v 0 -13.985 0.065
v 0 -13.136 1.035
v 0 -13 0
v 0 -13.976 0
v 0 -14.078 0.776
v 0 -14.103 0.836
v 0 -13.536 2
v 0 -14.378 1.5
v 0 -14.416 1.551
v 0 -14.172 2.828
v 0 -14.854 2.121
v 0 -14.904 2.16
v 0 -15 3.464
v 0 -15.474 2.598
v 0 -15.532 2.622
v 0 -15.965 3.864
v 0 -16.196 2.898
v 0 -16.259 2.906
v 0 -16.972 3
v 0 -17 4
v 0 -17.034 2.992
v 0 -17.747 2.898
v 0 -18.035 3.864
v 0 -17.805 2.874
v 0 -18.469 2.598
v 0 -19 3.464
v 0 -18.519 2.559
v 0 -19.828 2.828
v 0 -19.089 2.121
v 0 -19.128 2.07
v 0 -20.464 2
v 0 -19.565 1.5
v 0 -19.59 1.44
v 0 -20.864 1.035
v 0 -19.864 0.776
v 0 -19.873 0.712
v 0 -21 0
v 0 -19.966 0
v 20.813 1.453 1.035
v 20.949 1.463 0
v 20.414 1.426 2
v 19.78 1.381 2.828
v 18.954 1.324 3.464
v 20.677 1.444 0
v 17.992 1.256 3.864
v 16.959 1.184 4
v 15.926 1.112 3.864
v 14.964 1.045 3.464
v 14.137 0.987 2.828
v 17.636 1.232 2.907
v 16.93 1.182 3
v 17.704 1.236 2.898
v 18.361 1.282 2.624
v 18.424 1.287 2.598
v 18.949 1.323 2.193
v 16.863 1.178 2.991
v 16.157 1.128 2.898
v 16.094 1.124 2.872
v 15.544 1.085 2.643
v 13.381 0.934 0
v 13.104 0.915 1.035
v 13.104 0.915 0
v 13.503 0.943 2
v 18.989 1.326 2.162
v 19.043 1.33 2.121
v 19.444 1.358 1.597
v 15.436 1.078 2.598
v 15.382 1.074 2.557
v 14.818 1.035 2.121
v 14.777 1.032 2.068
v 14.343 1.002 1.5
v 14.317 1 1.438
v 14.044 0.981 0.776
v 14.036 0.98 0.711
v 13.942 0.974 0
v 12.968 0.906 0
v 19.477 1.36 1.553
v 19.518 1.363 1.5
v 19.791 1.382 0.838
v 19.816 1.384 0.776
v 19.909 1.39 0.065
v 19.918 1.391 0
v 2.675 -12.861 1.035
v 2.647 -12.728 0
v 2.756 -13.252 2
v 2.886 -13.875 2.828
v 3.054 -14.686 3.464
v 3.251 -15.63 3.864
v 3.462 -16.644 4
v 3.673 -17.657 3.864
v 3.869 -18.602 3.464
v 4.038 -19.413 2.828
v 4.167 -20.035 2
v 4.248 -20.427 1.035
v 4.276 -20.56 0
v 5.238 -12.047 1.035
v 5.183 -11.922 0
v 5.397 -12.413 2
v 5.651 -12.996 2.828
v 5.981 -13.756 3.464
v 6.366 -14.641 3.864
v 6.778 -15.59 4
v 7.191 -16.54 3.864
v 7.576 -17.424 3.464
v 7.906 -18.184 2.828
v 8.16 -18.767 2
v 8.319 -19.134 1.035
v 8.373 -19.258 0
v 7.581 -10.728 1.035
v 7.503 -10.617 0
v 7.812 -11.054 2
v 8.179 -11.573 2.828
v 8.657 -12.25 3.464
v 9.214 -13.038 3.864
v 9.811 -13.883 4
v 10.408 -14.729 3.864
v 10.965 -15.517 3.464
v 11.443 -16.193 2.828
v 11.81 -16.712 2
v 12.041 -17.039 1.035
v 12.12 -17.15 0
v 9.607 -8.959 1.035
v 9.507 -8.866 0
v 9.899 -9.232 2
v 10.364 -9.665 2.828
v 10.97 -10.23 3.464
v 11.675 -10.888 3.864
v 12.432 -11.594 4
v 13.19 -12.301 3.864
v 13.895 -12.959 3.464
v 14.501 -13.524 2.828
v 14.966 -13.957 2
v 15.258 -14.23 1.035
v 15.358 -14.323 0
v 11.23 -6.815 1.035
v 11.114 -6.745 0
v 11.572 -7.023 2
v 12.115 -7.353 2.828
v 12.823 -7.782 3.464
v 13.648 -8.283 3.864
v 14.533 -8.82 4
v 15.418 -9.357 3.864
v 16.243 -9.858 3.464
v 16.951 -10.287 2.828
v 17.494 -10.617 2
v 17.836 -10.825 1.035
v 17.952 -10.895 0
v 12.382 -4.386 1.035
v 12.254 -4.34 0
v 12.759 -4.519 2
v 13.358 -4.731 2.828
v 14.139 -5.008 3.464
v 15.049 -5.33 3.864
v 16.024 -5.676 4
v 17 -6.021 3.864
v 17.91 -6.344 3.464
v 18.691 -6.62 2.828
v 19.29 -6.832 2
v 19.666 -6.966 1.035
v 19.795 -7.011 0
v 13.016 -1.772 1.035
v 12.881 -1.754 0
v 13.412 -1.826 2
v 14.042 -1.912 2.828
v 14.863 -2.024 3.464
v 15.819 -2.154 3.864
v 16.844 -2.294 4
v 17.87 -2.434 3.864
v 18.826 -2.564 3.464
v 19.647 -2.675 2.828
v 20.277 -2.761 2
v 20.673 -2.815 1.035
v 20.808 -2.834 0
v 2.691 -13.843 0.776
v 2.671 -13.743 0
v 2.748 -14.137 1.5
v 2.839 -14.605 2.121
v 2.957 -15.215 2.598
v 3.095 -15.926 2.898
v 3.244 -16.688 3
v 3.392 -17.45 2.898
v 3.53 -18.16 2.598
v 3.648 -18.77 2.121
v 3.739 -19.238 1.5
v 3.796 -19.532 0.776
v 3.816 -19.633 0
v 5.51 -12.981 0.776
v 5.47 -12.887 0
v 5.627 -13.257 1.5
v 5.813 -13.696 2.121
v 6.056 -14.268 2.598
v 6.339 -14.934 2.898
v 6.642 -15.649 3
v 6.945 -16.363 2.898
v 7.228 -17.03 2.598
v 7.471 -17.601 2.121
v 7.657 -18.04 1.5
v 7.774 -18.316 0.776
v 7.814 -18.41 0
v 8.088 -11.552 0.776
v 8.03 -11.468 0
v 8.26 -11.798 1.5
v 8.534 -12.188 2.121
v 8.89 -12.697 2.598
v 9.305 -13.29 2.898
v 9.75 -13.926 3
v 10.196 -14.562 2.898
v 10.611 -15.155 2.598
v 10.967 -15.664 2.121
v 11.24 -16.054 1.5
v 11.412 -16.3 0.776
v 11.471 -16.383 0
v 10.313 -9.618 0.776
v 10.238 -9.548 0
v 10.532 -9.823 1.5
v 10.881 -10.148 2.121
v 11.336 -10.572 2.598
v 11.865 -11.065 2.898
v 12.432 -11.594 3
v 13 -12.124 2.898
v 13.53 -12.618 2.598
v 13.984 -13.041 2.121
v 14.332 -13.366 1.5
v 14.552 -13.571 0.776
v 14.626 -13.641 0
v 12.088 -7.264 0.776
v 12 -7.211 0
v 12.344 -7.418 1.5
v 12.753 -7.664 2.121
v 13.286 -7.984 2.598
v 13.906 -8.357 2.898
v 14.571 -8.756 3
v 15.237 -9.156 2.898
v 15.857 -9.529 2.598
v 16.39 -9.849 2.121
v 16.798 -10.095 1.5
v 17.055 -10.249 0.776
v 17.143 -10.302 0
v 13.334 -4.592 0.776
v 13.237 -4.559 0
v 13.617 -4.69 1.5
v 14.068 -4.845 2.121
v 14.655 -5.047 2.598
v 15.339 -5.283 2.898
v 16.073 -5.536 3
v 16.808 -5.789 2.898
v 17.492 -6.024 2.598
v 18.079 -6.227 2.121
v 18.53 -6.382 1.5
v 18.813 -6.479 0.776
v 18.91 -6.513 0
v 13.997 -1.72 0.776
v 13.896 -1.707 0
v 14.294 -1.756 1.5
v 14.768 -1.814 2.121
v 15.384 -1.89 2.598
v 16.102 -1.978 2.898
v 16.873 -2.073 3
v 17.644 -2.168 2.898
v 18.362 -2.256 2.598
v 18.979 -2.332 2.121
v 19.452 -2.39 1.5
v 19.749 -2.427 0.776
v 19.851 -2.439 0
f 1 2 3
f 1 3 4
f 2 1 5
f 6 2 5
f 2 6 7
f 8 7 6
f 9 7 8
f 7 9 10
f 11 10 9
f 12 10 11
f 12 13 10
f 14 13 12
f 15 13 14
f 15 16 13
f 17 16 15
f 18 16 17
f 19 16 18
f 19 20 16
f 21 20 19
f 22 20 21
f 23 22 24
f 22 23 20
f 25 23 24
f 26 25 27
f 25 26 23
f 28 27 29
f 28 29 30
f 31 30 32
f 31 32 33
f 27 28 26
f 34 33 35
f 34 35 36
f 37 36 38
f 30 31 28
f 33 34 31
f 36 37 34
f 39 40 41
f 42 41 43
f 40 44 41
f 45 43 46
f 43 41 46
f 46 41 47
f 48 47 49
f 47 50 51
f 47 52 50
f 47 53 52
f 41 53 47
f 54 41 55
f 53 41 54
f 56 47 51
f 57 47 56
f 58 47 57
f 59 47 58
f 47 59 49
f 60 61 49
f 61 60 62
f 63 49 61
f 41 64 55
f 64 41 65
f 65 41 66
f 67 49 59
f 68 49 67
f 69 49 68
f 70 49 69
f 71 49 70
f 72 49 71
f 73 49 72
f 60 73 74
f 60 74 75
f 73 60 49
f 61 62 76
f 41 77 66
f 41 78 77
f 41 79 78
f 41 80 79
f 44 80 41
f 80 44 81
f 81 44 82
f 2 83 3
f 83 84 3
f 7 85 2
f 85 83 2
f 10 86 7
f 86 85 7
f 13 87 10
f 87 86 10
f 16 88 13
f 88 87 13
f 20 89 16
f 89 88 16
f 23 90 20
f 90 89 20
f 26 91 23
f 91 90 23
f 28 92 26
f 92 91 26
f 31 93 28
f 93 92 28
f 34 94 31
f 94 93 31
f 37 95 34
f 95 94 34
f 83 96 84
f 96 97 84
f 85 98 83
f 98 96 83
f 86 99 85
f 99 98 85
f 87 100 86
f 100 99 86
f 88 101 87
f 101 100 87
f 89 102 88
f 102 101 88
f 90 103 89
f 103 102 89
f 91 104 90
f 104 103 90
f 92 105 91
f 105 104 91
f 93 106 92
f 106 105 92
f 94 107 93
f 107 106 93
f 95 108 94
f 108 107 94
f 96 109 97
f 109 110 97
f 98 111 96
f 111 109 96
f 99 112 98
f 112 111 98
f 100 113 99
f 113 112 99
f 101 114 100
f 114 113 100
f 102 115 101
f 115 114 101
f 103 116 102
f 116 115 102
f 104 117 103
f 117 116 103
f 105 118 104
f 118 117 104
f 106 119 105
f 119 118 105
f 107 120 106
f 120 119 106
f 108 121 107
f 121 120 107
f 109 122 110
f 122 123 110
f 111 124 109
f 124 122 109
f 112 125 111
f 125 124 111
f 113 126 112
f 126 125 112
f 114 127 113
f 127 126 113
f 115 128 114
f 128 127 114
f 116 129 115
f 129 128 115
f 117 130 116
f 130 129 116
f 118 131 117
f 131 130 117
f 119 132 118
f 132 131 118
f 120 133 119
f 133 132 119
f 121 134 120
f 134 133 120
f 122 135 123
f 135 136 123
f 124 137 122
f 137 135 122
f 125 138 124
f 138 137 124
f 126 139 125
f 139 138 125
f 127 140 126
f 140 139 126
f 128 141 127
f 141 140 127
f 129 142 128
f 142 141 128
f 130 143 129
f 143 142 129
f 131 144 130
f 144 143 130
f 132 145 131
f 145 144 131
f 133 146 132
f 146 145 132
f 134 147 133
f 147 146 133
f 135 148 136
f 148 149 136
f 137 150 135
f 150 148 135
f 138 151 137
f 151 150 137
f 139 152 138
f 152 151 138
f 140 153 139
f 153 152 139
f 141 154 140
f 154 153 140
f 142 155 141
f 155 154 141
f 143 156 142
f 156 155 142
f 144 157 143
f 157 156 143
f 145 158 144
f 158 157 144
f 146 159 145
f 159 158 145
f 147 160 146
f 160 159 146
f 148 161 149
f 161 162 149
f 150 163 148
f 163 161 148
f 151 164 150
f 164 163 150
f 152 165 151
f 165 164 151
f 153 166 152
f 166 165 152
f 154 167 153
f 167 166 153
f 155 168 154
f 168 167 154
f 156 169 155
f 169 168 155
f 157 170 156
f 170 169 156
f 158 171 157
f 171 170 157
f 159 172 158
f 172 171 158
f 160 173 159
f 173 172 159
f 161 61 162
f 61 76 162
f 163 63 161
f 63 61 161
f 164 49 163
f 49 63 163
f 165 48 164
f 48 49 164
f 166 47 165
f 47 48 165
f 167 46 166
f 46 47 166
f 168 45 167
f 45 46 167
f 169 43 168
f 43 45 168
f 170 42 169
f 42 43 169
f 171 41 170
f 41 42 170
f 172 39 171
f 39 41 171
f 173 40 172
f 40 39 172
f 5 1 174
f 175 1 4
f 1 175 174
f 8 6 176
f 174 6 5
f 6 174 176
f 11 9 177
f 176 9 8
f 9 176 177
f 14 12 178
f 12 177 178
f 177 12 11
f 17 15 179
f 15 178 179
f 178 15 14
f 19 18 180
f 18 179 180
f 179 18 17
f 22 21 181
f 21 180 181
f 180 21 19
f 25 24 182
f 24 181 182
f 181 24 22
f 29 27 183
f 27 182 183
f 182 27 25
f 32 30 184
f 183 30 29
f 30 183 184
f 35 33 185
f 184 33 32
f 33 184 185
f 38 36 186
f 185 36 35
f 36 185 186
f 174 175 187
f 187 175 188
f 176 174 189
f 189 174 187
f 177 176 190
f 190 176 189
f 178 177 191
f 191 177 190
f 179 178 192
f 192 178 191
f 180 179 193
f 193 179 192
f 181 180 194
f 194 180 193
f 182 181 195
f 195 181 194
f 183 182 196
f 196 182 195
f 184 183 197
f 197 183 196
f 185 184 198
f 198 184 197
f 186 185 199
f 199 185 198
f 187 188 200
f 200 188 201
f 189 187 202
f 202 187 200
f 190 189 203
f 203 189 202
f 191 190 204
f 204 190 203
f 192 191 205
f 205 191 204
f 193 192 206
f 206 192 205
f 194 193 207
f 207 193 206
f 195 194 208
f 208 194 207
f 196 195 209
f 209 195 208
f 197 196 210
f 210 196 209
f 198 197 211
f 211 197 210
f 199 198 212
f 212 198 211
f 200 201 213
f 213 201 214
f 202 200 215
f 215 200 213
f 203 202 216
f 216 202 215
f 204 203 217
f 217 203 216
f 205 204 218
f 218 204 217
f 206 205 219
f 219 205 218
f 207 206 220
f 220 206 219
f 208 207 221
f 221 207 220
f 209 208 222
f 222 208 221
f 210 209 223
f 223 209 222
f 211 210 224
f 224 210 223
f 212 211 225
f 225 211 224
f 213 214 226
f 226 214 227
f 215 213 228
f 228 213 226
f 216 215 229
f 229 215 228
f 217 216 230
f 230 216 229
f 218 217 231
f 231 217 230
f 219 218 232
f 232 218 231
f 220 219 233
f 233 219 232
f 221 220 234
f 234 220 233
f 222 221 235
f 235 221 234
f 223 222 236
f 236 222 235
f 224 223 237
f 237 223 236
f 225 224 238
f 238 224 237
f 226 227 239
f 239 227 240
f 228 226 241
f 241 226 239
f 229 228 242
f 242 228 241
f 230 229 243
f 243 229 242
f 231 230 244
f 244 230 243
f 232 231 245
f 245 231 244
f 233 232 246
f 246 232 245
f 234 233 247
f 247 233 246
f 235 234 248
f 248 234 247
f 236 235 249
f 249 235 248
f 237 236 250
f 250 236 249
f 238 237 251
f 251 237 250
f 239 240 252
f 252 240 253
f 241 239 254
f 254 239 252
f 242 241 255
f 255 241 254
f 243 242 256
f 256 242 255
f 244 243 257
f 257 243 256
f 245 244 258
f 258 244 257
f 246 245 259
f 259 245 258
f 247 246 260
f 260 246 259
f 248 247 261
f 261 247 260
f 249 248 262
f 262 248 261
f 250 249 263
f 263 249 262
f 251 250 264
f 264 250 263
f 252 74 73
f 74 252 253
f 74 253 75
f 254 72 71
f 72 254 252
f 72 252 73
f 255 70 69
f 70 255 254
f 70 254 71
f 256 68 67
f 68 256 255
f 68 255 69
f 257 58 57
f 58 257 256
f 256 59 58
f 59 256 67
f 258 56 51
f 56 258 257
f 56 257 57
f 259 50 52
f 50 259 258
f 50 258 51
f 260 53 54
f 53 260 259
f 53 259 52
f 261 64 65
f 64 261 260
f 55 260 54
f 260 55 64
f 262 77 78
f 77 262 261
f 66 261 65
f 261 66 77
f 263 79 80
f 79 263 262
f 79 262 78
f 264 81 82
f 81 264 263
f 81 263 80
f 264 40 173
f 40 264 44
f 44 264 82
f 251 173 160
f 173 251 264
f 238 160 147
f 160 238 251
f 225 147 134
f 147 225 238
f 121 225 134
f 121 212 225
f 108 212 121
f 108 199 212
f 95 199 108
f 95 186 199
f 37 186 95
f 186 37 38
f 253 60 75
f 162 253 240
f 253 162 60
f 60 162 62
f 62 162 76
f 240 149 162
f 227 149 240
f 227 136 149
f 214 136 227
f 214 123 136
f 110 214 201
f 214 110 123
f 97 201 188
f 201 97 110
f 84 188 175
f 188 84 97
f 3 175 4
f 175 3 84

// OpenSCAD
// file: ../build_environments.scad
// build_environments.scad: modules to build level sections
//

module pool(diameter=10.0, wall_height=2.0, step_width=3.0, connections=[])
{
    difference() {
        union() {
        difference() {
            cylinder(h=0.5,r1=diameter+step_width,r2=diameter+step_width,$fn=48);
            translate([0,0,-0.1])
                cylinder(h=0.7,r1=diameter,r2=diameter,$fn=48);
        }
        difference() {
            cylinder(h=wall_height,r1=diameter+step_width+1.0,r2=diameter+step_width+1.0,$fn=48);
            translate([0,0,-0.1])
                cylinder(h=wall_height+0.2,r1=diameter+step_width,r2=diameter+step_width,$fn=48);
        }
        }
    
        for (c = connections)
        {
            rotate([0,90,0]) {
                angle = atan2(c[1],c[0]);
                rotate([-angle,0,0]) {
                    cylinder(h=diameter+5.0,r1=c[2],r2=c[2],$fn=48);
                }
            }
        }
    }
}

module straight(length=10.0, width=2.0, dy1=0.0, dy2=0.0, dz=0.0)
{
    dims = [0, 0, 0, 0, 0, (dz/length)];
    matrix = [
        [ 1, dims[0], dims[1], 0 ],
        [ dims[2], 1, dims[4], 0 ],
        [ dims[5], dims[3], 1, 0 ],
        [ 0, 0, 0, 1 ]
    ];
    multmatrix(matrix)
    difference() {
        translate([dy1,0,0])
        union() {
            rotate([0,90,0]) {
                difference() {
                    cylinder(h=(length-dy1-dy2),r1=width+1.0,r2=width+1.0,$fn=24);
                    translate([0,0,-0.1])
                        cylinder(h=(length-dy1-dy2+0.2),r1=width,r2=width,$fn=24);
                }
                difference() {
                    cylinder(h=1.0,r1=width+2.0,r2=width+2.0,$fn=24);
                    translate([0,0,-0.1])
                        cylinder(h=1.2,r1=width,r2=width,$fn=24);
                }
                translate([0,0,(length-dy1-dy2)-1.0]) {
                    difference() {
                        cylinder(h=1.0,r1=width+2.0,r2=width+2.0,$fn=24);
                        translate([0,0,-0.1])
                            cylinder(h=1.2,r1=width,r2=width,$fn=24);
                    }
                }
            }
        }
        translate([0,0,-(2*width+4.0)/2])
            cube([3*length,3*length,2*width+4.0],center=true);
    }
}

module curve(p0=[0,0], center=[0,0], dir=1, angle=0.0, width=2.0)
{
    radius = sqrt((p0[0]-center[0])*(p0[0]-center[0]) + (p0[1]-center[1])*(p0[1]-center[1]));
    if (dir == 0) {
        difference() {
            rotate([0,0,-90])
            difference() {
                rotate_extrude(angle = angle, convexity = 10, $fn=32)
                    translate([radius, 0, 0])
                        circle(r = width+1.0,$fn=24);
                rotate([0,0,-1.0])
                    rotate_extrude(angle = angle+2.0, convexity = 10, $fn=32)
                        translate([radius, 0, 0])
                            circle(r = width,$fn=24);
            }
            translate([0,0,-(2*width+4.0)/2])
                cube([5*radius,5*radius,2*width+4.0],center=true);
        }
    }
    else {
        difference() {
            rotate([0,0,90])
            difference() {
                rotate_extrude(angle = -angle, convexity = 10, $fn=32)
                    translate([radius, 0, 0])
                        circle(r = width+1.0,$fn=24);
                rotate([0,0,1.0])
                    rotate_extrude(angle = -angle-2.0, convexity = 10, $fn=32)
                        translate([radius, 0, 0])
                            circle(r = width,$fn=24);
            }
            translate([0,0,-(2*width+4.0)/2])
                cube([5*radius,5*radius,2*width+4.0],center=true);
        }
    }

}

// test pool
//pool(diameter=12.0000, wall_height=3.0000, step_width=3.0000, connections=[[0.0000,-26.0000,2.0000], [23.6074,0.0000,2.0000]]);

// test straight, slope
//straight(length=26.0000, width=2.0000, dy1=11.8322, dy2=6.7082, dz=0.0000);
//straight(length=29.1549, width=12.0000, dy1=0.0000, dy2=0.0000, dz=-15.0000);

// test curve
//curve(p0=[23.6074, 0.0000], center=[23.6074, 5.0000], dir=0, angle=60.1011, width=2.0000);
//curve(p0=[33.6426, 12.4219], center=[37.9771, 9.9295], dir=1, angle=120.4627, width=2.0000);
// main file
use <../build_environments.scad>;
curve(p0=[-36.3540, -43.3979], center=[-23.0857, -54.0258], dir=0, angle=93.9947, width=3.0000);
